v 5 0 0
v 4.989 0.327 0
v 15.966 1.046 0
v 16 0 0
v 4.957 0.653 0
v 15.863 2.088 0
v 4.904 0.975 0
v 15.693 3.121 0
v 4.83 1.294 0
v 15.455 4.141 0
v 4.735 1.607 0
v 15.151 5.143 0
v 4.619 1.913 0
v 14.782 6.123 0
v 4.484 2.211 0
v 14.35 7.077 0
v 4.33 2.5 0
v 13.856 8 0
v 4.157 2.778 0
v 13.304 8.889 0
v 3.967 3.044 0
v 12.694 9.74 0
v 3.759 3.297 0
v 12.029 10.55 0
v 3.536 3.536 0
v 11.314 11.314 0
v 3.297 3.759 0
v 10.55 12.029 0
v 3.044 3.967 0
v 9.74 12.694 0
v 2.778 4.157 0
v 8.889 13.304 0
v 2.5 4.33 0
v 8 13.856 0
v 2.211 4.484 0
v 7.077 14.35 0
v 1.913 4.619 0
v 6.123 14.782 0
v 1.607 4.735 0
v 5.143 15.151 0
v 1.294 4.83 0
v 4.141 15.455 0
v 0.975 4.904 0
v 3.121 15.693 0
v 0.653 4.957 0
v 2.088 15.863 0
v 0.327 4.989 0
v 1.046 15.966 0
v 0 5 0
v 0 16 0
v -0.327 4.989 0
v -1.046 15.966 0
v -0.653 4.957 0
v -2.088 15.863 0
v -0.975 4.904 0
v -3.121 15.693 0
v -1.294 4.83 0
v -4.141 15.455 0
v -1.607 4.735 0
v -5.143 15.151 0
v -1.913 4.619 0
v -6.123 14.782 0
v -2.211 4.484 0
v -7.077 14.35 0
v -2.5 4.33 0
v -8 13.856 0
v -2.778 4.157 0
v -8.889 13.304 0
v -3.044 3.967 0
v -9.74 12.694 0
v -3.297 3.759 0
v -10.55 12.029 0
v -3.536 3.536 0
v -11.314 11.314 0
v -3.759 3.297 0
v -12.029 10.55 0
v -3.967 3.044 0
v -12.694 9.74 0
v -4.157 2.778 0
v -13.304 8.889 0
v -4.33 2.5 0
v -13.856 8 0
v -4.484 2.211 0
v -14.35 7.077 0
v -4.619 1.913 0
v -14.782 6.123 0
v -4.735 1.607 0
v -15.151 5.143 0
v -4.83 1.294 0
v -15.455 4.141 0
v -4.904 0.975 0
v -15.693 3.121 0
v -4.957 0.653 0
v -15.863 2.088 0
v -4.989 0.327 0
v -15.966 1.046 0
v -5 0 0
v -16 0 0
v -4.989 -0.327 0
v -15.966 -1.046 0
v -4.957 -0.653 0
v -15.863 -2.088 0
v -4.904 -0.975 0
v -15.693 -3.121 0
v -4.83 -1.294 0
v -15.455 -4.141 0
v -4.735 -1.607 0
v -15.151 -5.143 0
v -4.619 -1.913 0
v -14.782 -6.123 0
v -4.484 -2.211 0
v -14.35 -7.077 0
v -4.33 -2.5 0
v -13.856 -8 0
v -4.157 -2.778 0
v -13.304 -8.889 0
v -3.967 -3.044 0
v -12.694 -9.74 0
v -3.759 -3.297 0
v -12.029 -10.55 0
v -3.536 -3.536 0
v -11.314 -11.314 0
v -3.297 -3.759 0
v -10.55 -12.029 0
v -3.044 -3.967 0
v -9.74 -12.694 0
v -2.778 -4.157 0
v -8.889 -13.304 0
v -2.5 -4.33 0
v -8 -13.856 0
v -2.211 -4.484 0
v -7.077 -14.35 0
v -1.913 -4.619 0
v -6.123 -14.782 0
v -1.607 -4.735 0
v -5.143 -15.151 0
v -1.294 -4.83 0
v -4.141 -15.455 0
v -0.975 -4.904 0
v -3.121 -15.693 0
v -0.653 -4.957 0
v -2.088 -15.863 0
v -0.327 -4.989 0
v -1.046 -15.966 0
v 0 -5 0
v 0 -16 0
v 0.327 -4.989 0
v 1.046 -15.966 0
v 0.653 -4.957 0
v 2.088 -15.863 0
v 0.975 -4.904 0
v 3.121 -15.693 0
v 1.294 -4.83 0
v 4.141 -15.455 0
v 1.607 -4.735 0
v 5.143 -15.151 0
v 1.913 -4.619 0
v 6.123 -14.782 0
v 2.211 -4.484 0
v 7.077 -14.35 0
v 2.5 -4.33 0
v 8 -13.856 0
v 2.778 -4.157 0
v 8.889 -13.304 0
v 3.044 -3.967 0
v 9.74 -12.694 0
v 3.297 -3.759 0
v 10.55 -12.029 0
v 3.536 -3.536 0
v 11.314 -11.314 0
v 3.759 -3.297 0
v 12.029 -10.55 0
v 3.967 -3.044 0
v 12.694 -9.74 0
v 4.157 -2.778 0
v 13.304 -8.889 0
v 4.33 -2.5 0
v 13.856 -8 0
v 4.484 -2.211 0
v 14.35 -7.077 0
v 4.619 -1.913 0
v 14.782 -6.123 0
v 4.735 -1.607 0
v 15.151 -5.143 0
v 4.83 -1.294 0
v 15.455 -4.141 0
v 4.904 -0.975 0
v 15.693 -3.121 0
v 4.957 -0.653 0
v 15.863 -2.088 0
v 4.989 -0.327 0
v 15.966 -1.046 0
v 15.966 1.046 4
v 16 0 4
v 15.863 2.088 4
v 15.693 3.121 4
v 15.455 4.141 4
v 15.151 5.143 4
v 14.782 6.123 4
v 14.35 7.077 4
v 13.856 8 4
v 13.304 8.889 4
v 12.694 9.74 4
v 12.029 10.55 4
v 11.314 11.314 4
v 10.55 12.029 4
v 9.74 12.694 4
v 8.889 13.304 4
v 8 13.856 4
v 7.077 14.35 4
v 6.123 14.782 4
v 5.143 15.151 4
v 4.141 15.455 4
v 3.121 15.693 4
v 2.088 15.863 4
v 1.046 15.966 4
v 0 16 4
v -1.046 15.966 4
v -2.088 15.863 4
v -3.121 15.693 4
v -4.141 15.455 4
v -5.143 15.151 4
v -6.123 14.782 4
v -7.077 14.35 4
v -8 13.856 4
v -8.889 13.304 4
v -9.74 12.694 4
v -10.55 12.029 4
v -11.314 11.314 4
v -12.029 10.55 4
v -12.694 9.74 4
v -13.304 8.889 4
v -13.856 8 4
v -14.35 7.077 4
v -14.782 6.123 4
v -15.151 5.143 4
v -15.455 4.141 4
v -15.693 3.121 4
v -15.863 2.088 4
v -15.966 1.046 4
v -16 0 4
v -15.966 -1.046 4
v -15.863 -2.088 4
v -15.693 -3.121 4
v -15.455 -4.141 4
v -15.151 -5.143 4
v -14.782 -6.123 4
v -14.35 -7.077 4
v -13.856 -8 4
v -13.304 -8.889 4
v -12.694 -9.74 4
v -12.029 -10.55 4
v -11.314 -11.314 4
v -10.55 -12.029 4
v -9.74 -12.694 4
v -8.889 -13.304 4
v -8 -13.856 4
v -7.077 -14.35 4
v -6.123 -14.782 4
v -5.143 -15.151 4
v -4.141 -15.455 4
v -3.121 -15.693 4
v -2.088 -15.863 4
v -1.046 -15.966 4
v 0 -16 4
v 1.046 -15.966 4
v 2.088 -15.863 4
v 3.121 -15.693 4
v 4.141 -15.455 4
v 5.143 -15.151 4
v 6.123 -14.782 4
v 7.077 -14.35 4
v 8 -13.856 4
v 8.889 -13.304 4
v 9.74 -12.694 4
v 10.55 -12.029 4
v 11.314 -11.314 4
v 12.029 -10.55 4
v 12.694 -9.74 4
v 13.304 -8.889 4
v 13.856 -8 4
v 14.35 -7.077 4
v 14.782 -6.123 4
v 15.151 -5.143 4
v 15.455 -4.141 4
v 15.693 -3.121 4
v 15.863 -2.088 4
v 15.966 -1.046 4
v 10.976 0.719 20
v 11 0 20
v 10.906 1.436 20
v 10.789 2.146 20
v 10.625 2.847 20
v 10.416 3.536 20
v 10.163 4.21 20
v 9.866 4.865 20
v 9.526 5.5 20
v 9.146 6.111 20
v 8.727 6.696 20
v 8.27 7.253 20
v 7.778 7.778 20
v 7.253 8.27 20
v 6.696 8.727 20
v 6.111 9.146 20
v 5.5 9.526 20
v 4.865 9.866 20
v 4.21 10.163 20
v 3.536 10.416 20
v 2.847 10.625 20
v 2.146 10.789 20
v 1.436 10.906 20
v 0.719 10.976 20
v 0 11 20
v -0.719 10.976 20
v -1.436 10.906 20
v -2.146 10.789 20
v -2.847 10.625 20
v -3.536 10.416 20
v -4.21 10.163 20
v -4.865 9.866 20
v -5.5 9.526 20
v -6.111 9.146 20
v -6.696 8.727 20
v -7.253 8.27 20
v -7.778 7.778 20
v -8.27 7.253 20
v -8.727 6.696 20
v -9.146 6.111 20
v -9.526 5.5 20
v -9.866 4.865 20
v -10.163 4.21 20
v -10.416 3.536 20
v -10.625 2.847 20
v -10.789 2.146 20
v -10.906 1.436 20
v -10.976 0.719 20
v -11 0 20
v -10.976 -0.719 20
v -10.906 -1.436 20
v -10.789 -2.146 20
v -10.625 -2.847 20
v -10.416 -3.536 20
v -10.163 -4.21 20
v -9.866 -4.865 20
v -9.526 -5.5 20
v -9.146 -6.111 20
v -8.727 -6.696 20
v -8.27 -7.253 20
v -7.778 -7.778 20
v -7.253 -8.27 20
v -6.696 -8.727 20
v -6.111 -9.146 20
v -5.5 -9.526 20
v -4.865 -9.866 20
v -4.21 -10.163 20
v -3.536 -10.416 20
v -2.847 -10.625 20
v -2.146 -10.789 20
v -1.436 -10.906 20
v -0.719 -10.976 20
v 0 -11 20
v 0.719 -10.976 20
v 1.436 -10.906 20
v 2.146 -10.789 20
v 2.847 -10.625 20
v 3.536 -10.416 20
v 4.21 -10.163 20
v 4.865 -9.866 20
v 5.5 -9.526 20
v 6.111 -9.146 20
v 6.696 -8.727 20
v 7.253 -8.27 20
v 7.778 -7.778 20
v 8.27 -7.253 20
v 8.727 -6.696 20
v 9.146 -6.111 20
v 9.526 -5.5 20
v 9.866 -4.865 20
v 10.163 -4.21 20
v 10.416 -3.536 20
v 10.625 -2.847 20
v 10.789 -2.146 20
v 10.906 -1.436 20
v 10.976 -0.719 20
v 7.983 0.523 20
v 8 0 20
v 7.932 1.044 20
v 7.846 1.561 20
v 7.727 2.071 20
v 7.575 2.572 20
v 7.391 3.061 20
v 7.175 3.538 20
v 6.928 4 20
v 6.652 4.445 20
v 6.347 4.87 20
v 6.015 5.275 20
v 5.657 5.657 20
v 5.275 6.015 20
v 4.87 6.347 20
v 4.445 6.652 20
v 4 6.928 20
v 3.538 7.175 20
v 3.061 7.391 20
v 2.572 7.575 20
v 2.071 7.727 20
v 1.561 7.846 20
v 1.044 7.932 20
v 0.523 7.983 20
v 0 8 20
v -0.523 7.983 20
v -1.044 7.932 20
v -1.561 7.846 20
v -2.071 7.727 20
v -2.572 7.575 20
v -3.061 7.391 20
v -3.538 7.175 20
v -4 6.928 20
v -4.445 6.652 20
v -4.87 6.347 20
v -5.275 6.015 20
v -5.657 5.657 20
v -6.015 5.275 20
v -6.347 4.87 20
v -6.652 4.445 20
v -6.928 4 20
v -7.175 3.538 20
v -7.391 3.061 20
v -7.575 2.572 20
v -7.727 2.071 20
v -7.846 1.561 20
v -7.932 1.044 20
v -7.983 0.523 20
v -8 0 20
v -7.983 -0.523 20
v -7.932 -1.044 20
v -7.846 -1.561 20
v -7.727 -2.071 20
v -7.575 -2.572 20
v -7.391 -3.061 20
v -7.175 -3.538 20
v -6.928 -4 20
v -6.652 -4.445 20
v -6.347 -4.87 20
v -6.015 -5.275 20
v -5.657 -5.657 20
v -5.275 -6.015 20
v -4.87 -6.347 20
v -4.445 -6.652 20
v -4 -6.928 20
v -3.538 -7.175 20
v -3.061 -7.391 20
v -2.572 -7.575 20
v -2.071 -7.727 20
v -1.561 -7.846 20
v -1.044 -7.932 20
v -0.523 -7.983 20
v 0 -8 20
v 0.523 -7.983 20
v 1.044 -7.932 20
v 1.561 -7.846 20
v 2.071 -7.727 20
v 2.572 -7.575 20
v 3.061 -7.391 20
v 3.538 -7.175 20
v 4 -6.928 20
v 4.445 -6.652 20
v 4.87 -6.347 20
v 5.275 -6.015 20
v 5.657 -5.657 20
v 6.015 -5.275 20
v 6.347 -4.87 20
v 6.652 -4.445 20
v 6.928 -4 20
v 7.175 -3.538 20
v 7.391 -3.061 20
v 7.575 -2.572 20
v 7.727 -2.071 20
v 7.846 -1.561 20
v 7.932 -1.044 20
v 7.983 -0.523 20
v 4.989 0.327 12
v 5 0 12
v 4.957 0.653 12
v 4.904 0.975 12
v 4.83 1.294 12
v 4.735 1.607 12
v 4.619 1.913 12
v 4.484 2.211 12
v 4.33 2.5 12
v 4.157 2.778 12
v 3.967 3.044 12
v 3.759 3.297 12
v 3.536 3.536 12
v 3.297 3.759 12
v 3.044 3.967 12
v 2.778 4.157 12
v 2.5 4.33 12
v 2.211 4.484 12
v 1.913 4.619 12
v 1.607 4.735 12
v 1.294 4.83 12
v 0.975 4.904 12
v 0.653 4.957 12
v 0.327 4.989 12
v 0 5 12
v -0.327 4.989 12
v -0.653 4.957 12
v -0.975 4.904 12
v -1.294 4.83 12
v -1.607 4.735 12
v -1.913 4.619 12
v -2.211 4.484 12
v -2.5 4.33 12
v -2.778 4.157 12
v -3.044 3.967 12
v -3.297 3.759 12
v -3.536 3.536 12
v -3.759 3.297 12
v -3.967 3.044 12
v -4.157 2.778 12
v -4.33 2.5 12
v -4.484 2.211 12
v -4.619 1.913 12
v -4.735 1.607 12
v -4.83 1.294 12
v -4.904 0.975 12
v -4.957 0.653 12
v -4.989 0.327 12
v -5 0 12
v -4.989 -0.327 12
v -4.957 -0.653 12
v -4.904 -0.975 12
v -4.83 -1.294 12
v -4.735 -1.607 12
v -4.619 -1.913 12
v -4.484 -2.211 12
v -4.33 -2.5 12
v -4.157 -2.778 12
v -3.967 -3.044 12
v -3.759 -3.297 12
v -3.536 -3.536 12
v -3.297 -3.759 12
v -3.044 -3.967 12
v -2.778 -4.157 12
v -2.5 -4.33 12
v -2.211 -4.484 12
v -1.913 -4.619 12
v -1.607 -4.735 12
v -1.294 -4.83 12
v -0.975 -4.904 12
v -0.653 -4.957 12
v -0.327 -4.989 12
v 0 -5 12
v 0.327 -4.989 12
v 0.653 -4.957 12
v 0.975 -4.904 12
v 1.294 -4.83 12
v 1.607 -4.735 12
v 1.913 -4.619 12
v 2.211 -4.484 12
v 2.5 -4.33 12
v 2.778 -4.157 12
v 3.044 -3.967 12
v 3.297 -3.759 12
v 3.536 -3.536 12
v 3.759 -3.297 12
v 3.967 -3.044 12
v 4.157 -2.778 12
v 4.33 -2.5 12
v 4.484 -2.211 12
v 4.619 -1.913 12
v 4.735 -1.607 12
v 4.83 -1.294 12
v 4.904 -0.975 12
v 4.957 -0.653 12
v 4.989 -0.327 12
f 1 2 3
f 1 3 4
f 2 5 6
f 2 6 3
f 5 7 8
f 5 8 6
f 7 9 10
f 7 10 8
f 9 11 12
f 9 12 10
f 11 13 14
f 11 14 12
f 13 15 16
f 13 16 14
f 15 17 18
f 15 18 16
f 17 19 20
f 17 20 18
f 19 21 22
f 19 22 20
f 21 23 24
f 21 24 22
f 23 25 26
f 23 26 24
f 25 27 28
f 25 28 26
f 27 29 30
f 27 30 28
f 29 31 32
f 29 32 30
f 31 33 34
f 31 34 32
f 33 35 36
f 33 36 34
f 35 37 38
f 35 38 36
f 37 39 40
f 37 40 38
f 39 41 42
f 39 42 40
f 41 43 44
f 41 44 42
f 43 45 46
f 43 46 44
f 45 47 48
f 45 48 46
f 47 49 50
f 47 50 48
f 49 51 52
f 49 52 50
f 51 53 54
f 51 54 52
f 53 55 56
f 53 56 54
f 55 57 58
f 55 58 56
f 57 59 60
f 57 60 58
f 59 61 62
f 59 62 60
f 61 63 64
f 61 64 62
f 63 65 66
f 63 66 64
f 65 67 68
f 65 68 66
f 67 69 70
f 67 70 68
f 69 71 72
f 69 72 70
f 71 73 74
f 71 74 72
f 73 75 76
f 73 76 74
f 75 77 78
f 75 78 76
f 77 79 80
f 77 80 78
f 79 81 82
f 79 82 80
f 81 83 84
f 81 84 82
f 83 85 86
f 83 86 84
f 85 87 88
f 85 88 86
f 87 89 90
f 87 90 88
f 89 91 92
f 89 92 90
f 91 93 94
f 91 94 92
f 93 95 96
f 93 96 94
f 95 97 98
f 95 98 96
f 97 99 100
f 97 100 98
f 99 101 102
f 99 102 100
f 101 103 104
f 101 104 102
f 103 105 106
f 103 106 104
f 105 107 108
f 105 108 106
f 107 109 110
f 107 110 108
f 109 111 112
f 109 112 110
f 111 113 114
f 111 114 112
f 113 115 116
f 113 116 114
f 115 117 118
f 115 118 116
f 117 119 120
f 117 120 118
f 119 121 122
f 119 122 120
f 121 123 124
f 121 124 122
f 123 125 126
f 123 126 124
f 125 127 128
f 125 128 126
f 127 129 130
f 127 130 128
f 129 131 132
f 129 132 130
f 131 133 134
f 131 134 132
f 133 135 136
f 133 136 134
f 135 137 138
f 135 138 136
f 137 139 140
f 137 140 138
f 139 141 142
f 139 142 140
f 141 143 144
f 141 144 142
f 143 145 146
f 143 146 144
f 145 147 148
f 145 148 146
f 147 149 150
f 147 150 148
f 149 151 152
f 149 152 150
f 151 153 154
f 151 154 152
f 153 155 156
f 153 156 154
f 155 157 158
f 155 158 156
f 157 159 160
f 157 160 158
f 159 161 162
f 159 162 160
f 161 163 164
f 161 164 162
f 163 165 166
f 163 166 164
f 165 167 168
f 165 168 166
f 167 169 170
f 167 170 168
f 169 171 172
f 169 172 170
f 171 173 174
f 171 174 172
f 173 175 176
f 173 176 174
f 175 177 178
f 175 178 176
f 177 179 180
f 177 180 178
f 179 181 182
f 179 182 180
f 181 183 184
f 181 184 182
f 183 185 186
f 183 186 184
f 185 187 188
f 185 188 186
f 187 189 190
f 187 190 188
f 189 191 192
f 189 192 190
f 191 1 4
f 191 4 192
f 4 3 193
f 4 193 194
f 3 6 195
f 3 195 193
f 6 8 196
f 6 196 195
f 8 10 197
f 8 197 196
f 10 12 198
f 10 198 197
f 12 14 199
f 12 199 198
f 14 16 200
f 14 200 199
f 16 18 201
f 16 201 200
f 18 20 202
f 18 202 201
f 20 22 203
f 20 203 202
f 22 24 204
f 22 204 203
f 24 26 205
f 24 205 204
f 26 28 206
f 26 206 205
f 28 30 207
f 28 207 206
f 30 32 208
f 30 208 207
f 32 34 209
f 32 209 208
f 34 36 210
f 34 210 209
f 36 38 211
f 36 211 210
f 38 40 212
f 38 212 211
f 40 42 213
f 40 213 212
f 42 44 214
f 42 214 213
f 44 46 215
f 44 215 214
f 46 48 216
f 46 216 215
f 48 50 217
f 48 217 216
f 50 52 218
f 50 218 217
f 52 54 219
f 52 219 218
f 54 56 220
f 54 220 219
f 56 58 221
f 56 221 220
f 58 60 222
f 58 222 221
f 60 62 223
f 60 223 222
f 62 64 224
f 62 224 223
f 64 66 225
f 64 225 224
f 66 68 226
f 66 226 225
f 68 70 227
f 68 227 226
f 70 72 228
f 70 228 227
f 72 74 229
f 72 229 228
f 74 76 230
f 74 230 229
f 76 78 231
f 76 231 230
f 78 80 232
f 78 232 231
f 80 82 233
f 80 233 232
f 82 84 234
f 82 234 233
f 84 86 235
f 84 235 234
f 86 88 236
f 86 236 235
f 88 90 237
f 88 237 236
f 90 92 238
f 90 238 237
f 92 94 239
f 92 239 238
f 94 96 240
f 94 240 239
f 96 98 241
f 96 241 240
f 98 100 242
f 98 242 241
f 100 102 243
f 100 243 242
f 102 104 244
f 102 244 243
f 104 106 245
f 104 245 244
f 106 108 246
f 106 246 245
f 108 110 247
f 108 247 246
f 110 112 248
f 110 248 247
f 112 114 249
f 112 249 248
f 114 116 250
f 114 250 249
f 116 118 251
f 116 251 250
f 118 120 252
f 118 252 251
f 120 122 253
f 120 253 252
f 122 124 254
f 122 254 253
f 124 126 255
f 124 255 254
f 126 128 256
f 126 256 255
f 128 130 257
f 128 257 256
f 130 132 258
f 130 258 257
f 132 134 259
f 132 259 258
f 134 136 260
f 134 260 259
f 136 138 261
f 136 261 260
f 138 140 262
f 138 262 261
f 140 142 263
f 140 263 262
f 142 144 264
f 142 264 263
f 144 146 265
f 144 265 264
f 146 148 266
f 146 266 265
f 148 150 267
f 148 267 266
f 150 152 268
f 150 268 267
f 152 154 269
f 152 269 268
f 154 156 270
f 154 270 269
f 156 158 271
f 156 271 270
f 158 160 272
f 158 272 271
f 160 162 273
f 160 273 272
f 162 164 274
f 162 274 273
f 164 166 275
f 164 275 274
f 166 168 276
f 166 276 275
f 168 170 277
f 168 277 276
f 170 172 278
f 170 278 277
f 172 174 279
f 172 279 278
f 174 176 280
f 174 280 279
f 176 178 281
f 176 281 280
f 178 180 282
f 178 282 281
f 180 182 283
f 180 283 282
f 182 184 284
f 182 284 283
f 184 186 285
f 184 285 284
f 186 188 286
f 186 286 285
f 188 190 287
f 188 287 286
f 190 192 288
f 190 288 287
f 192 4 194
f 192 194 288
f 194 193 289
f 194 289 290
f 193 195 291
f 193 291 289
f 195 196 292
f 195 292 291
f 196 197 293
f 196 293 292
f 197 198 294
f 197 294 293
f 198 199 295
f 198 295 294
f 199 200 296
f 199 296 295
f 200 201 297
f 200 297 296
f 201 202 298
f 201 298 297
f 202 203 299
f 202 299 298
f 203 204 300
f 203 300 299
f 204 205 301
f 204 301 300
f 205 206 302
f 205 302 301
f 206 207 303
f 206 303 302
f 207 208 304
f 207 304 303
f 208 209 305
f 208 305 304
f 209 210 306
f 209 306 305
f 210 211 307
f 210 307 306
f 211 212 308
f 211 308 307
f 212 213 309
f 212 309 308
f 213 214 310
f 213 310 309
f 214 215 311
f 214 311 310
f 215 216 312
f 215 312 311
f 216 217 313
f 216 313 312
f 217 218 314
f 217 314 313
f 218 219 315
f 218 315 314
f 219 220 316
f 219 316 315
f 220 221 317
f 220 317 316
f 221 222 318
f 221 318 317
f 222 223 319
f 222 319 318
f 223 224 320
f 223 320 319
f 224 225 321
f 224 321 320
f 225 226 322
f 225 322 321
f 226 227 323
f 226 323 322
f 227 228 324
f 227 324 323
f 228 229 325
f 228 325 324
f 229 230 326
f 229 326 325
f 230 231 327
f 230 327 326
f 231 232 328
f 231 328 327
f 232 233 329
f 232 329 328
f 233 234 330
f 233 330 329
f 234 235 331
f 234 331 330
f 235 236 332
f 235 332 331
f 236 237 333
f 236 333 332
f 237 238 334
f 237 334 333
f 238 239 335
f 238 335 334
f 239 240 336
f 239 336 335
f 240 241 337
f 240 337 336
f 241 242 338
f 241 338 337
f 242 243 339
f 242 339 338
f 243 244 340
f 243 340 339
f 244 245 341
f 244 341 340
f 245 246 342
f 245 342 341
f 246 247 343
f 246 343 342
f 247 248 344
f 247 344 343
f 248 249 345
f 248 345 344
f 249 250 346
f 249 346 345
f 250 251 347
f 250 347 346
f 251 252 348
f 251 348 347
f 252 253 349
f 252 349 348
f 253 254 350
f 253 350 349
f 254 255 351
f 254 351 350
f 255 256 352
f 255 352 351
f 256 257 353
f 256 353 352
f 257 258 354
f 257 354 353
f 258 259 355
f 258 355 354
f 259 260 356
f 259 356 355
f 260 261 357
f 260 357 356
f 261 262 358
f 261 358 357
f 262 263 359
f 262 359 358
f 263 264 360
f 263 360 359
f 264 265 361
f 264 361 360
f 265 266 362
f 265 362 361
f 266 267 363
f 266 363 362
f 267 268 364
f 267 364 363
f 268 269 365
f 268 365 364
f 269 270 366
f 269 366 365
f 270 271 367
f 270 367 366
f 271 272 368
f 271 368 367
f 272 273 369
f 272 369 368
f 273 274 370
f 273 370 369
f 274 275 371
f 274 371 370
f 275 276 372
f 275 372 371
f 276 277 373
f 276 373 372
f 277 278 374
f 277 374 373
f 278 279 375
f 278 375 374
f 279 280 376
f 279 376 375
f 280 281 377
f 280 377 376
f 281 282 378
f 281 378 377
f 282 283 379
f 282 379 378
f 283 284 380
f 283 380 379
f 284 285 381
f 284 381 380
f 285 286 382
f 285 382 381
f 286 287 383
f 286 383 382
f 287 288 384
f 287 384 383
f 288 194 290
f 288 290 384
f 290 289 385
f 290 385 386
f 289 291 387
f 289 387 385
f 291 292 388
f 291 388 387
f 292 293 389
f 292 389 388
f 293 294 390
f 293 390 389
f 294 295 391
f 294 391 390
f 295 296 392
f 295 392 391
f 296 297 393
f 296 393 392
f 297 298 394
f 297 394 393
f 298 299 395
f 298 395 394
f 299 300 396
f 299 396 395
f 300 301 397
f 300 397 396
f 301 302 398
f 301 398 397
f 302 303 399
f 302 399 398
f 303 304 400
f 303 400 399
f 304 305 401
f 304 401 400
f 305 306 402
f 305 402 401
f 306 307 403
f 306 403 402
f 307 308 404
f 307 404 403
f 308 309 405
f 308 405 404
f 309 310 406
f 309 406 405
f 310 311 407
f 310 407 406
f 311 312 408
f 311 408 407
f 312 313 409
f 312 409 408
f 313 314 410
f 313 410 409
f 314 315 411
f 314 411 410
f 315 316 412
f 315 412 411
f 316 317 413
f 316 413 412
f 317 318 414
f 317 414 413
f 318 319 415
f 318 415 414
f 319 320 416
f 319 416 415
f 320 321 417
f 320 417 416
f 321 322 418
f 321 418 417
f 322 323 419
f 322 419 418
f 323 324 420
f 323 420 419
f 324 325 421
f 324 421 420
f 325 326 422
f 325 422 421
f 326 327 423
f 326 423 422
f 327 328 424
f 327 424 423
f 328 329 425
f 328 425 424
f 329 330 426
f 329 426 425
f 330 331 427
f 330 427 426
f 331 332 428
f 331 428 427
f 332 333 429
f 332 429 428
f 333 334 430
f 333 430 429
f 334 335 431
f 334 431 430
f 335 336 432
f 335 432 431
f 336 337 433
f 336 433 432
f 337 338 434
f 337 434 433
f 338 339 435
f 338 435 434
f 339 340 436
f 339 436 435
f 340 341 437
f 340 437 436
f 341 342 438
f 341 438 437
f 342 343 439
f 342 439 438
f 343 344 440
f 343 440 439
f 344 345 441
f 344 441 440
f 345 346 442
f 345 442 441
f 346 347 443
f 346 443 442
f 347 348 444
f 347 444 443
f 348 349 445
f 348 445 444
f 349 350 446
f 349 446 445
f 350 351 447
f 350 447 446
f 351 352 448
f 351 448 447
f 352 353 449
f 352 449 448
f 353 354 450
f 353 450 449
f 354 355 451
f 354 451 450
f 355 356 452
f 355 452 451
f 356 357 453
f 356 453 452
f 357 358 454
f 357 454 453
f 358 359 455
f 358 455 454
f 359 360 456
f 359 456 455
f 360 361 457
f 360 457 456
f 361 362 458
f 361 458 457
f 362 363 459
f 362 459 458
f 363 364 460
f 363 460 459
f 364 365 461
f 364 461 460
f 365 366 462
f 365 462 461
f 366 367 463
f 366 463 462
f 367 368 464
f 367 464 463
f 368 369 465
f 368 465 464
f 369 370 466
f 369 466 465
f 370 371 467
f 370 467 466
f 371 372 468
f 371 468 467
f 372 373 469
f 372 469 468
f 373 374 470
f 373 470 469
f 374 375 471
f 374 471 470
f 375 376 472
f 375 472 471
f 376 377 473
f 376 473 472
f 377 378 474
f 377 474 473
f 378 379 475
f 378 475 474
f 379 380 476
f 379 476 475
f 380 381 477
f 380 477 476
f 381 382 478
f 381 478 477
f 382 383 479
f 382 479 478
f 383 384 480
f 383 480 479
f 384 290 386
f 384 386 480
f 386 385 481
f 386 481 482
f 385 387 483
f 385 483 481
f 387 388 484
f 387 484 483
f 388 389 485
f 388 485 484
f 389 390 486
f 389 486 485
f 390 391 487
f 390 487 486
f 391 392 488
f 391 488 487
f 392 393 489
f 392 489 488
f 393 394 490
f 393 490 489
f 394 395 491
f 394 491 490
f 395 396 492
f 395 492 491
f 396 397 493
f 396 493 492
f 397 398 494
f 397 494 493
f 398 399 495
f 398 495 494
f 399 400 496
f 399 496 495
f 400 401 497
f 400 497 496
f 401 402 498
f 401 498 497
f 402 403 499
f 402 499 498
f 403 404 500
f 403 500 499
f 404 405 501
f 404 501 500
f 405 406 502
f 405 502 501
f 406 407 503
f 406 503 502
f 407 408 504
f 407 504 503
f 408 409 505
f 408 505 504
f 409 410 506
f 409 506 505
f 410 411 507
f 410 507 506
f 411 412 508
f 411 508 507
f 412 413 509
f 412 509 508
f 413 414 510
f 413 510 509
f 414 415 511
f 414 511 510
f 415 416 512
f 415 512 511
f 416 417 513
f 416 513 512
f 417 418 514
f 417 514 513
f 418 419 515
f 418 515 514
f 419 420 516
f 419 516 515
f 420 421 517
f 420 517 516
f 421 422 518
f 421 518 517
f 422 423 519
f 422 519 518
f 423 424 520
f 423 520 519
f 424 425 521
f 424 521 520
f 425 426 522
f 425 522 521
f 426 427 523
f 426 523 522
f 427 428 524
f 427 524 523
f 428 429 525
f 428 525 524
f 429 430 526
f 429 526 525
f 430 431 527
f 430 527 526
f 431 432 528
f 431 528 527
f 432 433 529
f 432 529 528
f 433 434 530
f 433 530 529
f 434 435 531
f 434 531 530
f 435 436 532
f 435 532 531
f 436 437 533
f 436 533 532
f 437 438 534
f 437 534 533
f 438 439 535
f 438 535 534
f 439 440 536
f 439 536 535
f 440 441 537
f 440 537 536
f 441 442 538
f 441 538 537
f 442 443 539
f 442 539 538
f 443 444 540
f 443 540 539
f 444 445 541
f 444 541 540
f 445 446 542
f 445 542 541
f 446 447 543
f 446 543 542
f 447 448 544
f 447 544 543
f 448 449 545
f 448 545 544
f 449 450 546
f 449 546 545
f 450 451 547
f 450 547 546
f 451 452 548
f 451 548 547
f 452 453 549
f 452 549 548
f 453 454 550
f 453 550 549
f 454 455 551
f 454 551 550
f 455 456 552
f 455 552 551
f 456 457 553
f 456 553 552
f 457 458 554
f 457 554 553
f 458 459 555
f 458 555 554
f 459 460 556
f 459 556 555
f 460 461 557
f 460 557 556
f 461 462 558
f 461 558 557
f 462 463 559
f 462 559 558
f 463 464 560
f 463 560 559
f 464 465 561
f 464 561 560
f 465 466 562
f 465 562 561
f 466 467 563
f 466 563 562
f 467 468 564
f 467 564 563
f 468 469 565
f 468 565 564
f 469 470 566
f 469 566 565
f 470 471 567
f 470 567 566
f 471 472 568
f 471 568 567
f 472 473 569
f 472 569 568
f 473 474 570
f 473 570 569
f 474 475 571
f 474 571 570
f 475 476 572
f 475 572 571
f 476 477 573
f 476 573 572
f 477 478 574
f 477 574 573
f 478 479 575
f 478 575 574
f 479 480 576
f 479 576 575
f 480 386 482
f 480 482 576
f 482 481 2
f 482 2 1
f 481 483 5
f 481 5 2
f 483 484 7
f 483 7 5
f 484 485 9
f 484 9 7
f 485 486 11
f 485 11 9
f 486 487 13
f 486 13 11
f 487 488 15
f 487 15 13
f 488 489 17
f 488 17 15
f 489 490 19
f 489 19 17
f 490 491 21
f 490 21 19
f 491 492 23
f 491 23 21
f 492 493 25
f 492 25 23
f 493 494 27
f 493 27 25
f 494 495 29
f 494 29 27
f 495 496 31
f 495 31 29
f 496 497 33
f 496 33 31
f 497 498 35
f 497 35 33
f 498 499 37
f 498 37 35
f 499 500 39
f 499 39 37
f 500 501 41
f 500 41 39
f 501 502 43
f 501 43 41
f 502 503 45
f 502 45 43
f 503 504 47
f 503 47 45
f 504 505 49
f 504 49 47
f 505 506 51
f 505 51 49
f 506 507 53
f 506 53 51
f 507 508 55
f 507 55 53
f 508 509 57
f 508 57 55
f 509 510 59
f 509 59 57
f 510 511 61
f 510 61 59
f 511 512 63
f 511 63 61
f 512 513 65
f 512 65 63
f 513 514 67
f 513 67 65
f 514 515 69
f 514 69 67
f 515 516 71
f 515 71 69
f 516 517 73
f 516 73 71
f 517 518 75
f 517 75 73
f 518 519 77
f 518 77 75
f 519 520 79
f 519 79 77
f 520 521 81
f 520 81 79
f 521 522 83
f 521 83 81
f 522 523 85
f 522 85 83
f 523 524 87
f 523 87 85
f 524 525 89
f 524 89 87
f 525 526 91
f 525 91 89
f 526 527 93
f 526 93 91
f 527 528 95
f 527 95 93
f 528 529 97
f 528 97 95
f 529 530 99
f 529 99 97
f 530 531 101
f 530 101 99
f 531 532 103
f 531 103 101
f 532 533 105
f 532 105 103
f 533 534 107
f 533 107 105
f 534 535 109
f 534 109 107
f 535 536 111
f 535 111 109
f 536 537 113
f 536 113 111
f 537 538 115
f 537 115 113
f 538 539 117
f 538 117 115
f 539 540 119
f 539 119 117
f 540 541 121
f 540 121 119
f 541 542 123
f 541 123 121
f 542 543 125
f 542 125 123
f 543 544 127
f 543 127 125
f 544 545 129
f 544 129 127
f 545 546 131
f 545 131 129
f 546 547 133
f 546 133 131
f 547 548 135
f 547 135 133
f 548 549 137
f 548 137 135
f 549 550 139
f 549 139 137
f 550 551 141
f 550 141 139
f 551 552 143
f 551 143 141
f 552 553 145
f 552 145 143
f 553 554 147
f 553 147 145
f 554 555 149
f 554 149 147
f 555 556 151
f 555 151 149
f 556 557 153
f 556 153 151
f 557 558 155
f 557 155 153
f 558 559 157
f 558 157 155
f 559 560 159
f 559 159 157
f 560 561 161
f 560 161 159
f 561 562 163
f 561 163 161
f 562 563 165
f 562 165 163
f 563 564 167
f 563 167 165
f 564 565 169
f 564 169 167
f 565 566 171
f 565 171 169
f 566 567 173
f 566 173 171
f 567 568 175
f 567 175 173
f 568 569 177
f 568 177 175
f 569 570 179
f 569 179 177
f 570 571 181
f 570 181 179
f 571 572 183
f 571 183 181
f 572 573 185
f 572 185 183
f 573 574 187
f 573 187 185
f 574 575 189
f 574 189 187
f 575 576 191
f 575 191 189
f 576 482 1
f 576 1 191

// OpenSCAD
// Original MechIntel educational model. CC0-1.0. Units: mm.
// Not a standardized or load-rated component.
$fn=96;
// Section points: [radius, height], mm. Edit to change the profile.
section=[[5, 0], [16, 0], [16, 4], [11, 20], [8, 20], [5, 12]];
rotate_extrude($fn=96) polygon(points=section);
